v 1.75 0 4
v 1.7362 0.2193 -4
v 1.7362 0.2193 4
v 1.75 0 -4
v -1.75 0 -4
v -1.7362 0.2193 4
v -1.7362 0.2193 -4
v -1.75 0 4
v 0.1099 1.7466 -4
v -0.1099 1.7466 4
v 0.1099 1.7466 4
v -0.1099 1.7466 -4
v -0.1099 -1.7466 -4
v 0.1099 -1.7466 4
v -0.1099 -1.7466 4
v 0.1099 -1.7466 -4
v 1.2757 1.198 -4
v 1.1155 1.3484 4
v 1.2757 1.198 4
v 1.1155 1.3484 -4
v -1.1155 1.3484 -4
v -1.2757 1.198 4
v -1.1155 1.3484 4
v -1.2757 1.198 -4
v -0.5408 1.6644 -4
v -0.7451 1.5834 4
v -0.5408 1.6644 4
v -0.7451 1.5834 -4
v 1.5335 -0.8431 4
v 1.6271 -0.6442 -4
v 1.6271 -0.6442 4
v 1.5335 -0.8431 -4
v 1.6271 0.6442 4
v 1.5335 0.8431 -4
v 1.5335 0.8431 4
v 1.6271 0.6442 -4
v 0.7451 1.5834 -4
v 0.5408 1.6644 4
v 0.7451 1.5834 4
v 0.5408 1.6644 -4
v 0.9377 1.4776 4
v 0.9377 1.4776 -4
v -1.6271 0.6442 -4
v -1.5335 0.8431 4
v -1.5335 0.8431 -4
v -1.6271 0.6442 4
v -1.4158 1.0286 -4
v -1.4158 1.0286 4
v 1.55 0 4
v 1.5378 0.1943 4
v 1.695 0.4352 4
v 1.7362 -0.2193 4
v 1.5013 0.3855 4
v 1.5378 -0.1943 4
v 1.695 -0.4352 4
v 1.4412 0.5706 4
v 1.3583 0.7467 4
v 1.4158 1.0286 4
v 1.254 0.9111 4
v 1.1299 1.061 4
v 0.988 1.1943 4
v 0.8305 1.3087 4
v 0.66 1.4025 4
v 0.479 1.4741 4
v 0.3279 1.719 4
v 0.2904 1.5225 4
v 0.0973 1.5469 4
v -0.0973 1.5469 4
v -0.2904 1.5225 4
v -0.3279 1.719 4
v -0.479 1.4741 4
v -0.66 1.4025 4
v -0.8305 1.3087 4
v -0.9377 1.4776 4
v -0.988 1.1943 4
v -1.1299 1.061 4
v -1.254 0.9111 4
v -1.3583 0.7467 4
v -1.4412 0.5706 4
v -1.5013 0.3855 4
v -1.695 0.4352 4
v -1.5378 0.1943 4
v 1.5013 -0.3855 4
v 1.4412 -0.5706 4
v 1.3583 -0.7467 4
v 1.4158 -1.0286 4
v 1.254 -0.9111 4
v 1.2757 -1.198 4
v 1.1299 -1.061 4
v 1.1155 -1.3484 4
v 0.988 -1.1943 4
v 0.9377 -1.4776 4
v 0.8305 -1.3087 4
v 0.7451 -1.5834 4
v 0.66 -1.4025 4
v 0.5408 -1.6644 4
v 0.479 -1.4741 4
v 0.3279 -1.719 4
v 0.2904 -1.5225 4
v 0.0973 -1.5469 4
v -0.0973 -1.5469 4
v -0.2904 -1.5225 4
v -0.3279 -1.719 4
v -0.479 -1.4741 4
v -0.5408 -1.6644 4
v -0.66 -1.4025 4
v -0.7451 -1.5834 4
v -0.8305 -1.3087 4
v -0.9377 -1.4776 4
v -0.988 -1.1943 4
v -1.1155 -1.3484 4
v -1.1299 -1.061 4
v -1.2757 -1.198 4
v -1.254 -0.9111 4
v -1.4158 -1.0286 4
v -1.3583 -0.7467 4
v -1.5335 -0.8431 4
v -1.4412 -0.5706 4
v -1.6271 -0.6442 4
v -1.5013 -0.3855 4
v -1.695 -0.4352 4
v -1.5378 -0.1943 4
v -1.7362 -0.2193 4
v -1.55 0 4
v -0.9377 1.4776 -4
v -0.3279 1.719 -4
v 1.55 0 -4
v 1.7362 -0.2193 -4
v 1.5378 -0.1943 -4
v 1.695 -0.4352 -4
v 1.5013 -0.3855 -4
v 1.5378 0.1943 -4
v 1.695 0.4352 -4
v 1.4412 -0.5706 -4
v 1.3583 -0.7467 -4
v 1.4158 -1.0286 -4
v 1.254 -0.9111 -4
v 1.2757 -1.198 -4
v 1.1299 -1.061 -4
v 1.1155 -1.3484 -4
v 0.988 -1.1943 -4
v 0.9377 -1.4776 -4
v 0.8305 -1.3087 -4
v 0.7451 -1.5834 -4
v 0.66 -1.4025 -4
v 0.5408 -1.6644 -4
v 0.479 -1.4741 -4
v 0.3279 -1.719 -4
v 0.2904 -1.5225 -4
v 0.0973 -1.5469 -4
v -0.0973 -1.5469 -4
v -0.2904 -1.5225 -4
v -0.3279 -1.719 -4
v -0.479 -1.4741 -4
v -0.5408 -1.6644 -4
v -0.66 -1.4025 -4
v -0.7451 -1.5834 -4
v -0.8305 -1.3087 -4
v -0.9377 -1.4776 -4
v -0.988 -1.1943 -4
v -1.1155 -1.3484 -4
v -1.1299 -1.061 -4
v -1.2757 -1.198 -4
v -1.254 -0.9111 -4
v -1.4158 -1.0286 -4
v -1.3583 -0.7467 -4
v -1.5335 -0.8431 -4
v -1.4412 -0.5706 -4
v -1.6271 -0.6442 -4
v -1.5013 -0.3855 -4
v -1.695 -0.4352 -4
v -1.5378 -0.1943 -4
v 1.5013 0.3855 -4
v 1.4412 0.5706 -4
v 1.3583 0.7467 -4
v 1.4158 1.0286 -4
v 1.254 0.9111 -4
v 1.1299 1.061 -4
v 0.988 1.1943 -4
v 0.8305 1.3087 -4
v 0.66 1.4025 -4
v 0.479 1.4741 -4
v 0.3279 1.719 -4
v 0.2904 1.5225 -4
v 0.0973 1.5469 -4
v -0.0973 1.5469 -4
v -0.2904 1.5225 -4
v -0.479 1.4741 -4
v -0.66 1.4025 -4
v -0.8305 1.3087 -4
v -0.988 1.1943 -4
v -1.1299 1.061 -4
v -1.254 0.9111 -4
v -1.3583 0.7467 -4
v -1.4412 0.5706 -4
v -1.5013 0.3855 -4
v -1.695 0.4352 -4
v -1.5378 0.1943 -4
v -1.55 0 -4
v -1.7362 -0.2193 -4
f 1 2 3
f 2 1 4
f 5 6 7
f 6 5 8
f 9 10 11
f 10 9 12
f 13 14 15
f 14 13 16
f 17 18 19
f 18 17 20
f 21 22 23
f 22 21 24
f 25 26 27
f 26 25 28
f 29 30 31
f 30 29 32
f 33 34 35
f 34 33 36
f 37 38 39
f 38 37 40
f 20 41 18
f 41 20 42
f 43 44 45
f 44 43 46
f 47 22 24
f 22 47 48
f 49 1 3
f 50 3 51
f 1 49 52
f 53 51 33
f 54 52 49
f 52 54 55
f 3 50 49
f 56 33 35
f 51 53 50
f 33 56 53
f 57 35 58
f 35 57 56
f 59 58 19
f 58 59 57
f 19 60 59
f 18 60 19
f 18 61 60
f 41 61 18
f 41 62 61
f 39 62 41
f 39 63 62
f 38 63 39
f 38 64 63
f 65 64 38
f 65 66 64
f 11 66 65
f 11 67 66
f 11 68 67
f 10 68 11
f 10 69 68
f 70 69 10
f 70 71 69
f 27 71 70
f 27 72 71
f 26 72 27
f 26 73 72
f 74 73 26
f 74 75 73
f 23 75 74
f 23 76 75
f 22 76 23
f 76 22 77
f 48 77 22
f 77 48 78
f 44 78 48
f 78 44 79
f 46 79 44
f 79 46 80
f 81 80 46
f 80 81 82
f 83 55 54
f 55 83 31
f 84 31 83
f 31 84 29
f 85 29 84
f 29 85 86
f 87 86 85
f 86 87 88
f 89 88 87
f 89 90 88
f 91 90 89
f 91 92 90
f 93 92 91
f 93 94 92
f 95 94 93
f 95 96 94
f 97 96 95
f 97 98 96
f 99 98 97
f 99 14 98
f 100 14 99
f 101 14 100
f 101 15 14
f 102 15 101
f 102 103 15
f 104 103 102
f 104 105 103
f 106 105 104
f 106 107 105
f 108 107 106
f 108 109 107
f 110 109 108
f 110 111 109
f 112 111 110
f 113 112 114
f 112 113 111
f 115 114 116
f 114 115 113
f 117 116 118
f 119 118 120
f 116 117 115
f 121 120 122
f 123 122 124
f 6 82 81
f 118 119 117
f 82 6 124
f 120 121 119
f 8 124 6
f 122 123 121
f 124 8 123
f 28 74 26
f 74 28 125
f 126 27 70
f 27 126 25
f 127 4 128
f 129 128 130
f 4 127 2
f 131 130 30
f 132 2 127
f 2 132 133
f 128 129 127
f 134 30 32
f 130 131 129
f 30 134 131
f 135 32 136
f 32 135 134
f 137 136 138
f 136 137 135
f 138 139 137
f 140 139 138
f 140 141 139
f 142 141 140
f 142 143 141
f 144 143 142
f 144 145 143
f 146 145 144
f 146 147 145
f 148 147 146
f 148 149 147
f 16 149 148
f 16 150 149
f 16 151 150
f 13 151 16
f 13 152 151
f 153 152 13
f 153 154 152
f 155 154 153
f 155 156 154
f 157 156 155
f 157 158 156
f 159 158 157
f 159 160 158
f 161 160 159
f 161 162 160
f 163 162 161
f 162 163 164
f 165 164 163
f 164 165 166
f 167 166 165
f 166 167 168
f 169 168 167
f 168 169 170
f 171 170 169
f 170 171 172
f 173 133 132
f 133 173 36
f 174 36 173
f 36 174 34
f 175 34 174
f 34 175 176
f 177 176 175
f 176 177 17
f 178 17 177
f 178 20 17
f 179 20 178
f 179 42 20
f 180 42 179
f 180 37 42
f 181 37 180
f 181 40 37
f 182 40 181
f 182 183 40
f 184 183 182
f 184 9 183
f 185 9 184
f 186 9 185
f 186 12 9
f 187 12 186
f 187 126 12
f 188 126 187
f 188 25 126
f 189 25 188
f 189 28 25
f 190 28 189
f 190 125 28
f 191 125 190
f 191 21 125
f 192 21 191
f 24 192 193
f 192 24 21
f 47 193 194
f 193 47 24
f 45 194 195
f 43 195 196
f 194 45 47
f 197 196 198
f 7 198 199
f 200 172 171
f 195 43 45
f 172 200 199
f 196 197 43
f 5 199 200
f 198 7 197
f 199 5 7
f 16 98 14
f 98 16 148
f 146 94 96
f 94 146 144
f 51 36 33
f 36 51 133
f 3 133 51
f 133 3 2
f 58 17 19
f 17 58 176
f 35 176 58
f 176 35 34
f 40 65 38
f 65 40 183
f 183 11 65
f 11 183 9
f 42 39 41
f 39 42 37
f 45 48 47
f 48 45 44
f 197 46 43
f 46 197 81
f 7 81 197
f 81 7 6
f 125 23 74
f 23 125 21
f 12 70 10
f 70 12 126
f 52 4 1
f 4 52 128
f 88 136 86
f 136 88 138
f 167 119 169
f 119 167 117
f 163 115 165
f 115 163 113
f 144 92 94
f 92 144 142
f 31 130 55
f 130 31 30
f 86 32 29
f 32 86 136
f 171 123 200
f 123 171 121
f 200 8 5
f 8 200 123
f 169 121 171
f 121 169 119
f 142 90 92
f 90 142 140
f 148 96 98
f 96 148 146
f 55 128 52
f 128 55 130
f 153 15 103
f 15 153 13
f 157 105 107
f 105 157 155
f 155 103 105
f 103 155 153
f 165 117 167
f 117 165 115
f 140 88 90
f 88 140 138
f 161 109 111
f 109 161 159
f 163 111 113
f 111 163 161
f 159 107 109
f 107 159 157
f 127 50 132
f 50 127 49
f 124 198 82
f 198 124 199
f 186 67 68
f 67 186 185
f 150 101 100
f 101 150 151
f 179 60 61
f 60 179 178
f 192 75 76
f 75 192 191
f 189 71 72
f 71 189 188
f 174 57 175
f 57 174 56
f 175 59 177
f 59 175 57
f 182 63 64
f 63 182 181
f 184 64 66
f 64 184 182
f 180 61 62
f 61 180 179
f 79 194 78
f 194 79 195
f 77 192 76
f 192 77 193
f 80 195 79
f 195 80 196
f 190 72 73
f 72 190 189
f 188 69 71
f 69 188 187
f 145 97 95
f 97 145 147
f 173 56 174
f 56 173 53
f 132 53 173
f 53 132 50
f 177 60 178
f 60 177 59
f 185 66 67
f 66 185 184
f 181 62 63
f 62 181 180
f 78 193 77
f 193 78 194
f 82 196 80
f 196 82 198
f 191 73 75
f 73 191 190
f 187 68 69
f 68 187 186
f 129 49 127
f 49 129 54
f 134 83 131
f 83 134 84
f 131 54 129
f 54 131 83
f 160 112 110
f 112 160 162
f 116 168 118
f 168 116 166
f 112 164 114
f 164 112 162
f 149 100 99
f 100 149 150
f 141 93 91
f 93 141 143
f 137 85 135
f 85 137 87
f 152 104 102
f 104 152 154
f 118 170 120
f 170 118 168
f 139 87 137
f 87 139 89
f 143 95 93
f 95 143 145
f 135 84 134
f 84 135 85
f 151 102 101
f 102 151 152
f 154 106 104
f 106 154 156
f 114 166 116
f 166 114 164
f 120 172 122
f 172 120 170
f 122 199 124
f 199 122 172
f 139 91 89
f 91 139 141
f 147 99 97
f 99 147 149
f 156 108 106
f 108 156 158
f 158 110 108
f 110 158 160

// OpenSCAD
$fn = 50;


difference() {
	union() {
		translate(v = [0, 0, -4.0000000000]) {
			cylinder(h = 8, r = 1.7500000000);
		}
	}
	union() {
		translate(v = [0, 0, -100.0000000000]) {
			cylinder(h = 200, r = 1.5500000000);
		}
	}
}
